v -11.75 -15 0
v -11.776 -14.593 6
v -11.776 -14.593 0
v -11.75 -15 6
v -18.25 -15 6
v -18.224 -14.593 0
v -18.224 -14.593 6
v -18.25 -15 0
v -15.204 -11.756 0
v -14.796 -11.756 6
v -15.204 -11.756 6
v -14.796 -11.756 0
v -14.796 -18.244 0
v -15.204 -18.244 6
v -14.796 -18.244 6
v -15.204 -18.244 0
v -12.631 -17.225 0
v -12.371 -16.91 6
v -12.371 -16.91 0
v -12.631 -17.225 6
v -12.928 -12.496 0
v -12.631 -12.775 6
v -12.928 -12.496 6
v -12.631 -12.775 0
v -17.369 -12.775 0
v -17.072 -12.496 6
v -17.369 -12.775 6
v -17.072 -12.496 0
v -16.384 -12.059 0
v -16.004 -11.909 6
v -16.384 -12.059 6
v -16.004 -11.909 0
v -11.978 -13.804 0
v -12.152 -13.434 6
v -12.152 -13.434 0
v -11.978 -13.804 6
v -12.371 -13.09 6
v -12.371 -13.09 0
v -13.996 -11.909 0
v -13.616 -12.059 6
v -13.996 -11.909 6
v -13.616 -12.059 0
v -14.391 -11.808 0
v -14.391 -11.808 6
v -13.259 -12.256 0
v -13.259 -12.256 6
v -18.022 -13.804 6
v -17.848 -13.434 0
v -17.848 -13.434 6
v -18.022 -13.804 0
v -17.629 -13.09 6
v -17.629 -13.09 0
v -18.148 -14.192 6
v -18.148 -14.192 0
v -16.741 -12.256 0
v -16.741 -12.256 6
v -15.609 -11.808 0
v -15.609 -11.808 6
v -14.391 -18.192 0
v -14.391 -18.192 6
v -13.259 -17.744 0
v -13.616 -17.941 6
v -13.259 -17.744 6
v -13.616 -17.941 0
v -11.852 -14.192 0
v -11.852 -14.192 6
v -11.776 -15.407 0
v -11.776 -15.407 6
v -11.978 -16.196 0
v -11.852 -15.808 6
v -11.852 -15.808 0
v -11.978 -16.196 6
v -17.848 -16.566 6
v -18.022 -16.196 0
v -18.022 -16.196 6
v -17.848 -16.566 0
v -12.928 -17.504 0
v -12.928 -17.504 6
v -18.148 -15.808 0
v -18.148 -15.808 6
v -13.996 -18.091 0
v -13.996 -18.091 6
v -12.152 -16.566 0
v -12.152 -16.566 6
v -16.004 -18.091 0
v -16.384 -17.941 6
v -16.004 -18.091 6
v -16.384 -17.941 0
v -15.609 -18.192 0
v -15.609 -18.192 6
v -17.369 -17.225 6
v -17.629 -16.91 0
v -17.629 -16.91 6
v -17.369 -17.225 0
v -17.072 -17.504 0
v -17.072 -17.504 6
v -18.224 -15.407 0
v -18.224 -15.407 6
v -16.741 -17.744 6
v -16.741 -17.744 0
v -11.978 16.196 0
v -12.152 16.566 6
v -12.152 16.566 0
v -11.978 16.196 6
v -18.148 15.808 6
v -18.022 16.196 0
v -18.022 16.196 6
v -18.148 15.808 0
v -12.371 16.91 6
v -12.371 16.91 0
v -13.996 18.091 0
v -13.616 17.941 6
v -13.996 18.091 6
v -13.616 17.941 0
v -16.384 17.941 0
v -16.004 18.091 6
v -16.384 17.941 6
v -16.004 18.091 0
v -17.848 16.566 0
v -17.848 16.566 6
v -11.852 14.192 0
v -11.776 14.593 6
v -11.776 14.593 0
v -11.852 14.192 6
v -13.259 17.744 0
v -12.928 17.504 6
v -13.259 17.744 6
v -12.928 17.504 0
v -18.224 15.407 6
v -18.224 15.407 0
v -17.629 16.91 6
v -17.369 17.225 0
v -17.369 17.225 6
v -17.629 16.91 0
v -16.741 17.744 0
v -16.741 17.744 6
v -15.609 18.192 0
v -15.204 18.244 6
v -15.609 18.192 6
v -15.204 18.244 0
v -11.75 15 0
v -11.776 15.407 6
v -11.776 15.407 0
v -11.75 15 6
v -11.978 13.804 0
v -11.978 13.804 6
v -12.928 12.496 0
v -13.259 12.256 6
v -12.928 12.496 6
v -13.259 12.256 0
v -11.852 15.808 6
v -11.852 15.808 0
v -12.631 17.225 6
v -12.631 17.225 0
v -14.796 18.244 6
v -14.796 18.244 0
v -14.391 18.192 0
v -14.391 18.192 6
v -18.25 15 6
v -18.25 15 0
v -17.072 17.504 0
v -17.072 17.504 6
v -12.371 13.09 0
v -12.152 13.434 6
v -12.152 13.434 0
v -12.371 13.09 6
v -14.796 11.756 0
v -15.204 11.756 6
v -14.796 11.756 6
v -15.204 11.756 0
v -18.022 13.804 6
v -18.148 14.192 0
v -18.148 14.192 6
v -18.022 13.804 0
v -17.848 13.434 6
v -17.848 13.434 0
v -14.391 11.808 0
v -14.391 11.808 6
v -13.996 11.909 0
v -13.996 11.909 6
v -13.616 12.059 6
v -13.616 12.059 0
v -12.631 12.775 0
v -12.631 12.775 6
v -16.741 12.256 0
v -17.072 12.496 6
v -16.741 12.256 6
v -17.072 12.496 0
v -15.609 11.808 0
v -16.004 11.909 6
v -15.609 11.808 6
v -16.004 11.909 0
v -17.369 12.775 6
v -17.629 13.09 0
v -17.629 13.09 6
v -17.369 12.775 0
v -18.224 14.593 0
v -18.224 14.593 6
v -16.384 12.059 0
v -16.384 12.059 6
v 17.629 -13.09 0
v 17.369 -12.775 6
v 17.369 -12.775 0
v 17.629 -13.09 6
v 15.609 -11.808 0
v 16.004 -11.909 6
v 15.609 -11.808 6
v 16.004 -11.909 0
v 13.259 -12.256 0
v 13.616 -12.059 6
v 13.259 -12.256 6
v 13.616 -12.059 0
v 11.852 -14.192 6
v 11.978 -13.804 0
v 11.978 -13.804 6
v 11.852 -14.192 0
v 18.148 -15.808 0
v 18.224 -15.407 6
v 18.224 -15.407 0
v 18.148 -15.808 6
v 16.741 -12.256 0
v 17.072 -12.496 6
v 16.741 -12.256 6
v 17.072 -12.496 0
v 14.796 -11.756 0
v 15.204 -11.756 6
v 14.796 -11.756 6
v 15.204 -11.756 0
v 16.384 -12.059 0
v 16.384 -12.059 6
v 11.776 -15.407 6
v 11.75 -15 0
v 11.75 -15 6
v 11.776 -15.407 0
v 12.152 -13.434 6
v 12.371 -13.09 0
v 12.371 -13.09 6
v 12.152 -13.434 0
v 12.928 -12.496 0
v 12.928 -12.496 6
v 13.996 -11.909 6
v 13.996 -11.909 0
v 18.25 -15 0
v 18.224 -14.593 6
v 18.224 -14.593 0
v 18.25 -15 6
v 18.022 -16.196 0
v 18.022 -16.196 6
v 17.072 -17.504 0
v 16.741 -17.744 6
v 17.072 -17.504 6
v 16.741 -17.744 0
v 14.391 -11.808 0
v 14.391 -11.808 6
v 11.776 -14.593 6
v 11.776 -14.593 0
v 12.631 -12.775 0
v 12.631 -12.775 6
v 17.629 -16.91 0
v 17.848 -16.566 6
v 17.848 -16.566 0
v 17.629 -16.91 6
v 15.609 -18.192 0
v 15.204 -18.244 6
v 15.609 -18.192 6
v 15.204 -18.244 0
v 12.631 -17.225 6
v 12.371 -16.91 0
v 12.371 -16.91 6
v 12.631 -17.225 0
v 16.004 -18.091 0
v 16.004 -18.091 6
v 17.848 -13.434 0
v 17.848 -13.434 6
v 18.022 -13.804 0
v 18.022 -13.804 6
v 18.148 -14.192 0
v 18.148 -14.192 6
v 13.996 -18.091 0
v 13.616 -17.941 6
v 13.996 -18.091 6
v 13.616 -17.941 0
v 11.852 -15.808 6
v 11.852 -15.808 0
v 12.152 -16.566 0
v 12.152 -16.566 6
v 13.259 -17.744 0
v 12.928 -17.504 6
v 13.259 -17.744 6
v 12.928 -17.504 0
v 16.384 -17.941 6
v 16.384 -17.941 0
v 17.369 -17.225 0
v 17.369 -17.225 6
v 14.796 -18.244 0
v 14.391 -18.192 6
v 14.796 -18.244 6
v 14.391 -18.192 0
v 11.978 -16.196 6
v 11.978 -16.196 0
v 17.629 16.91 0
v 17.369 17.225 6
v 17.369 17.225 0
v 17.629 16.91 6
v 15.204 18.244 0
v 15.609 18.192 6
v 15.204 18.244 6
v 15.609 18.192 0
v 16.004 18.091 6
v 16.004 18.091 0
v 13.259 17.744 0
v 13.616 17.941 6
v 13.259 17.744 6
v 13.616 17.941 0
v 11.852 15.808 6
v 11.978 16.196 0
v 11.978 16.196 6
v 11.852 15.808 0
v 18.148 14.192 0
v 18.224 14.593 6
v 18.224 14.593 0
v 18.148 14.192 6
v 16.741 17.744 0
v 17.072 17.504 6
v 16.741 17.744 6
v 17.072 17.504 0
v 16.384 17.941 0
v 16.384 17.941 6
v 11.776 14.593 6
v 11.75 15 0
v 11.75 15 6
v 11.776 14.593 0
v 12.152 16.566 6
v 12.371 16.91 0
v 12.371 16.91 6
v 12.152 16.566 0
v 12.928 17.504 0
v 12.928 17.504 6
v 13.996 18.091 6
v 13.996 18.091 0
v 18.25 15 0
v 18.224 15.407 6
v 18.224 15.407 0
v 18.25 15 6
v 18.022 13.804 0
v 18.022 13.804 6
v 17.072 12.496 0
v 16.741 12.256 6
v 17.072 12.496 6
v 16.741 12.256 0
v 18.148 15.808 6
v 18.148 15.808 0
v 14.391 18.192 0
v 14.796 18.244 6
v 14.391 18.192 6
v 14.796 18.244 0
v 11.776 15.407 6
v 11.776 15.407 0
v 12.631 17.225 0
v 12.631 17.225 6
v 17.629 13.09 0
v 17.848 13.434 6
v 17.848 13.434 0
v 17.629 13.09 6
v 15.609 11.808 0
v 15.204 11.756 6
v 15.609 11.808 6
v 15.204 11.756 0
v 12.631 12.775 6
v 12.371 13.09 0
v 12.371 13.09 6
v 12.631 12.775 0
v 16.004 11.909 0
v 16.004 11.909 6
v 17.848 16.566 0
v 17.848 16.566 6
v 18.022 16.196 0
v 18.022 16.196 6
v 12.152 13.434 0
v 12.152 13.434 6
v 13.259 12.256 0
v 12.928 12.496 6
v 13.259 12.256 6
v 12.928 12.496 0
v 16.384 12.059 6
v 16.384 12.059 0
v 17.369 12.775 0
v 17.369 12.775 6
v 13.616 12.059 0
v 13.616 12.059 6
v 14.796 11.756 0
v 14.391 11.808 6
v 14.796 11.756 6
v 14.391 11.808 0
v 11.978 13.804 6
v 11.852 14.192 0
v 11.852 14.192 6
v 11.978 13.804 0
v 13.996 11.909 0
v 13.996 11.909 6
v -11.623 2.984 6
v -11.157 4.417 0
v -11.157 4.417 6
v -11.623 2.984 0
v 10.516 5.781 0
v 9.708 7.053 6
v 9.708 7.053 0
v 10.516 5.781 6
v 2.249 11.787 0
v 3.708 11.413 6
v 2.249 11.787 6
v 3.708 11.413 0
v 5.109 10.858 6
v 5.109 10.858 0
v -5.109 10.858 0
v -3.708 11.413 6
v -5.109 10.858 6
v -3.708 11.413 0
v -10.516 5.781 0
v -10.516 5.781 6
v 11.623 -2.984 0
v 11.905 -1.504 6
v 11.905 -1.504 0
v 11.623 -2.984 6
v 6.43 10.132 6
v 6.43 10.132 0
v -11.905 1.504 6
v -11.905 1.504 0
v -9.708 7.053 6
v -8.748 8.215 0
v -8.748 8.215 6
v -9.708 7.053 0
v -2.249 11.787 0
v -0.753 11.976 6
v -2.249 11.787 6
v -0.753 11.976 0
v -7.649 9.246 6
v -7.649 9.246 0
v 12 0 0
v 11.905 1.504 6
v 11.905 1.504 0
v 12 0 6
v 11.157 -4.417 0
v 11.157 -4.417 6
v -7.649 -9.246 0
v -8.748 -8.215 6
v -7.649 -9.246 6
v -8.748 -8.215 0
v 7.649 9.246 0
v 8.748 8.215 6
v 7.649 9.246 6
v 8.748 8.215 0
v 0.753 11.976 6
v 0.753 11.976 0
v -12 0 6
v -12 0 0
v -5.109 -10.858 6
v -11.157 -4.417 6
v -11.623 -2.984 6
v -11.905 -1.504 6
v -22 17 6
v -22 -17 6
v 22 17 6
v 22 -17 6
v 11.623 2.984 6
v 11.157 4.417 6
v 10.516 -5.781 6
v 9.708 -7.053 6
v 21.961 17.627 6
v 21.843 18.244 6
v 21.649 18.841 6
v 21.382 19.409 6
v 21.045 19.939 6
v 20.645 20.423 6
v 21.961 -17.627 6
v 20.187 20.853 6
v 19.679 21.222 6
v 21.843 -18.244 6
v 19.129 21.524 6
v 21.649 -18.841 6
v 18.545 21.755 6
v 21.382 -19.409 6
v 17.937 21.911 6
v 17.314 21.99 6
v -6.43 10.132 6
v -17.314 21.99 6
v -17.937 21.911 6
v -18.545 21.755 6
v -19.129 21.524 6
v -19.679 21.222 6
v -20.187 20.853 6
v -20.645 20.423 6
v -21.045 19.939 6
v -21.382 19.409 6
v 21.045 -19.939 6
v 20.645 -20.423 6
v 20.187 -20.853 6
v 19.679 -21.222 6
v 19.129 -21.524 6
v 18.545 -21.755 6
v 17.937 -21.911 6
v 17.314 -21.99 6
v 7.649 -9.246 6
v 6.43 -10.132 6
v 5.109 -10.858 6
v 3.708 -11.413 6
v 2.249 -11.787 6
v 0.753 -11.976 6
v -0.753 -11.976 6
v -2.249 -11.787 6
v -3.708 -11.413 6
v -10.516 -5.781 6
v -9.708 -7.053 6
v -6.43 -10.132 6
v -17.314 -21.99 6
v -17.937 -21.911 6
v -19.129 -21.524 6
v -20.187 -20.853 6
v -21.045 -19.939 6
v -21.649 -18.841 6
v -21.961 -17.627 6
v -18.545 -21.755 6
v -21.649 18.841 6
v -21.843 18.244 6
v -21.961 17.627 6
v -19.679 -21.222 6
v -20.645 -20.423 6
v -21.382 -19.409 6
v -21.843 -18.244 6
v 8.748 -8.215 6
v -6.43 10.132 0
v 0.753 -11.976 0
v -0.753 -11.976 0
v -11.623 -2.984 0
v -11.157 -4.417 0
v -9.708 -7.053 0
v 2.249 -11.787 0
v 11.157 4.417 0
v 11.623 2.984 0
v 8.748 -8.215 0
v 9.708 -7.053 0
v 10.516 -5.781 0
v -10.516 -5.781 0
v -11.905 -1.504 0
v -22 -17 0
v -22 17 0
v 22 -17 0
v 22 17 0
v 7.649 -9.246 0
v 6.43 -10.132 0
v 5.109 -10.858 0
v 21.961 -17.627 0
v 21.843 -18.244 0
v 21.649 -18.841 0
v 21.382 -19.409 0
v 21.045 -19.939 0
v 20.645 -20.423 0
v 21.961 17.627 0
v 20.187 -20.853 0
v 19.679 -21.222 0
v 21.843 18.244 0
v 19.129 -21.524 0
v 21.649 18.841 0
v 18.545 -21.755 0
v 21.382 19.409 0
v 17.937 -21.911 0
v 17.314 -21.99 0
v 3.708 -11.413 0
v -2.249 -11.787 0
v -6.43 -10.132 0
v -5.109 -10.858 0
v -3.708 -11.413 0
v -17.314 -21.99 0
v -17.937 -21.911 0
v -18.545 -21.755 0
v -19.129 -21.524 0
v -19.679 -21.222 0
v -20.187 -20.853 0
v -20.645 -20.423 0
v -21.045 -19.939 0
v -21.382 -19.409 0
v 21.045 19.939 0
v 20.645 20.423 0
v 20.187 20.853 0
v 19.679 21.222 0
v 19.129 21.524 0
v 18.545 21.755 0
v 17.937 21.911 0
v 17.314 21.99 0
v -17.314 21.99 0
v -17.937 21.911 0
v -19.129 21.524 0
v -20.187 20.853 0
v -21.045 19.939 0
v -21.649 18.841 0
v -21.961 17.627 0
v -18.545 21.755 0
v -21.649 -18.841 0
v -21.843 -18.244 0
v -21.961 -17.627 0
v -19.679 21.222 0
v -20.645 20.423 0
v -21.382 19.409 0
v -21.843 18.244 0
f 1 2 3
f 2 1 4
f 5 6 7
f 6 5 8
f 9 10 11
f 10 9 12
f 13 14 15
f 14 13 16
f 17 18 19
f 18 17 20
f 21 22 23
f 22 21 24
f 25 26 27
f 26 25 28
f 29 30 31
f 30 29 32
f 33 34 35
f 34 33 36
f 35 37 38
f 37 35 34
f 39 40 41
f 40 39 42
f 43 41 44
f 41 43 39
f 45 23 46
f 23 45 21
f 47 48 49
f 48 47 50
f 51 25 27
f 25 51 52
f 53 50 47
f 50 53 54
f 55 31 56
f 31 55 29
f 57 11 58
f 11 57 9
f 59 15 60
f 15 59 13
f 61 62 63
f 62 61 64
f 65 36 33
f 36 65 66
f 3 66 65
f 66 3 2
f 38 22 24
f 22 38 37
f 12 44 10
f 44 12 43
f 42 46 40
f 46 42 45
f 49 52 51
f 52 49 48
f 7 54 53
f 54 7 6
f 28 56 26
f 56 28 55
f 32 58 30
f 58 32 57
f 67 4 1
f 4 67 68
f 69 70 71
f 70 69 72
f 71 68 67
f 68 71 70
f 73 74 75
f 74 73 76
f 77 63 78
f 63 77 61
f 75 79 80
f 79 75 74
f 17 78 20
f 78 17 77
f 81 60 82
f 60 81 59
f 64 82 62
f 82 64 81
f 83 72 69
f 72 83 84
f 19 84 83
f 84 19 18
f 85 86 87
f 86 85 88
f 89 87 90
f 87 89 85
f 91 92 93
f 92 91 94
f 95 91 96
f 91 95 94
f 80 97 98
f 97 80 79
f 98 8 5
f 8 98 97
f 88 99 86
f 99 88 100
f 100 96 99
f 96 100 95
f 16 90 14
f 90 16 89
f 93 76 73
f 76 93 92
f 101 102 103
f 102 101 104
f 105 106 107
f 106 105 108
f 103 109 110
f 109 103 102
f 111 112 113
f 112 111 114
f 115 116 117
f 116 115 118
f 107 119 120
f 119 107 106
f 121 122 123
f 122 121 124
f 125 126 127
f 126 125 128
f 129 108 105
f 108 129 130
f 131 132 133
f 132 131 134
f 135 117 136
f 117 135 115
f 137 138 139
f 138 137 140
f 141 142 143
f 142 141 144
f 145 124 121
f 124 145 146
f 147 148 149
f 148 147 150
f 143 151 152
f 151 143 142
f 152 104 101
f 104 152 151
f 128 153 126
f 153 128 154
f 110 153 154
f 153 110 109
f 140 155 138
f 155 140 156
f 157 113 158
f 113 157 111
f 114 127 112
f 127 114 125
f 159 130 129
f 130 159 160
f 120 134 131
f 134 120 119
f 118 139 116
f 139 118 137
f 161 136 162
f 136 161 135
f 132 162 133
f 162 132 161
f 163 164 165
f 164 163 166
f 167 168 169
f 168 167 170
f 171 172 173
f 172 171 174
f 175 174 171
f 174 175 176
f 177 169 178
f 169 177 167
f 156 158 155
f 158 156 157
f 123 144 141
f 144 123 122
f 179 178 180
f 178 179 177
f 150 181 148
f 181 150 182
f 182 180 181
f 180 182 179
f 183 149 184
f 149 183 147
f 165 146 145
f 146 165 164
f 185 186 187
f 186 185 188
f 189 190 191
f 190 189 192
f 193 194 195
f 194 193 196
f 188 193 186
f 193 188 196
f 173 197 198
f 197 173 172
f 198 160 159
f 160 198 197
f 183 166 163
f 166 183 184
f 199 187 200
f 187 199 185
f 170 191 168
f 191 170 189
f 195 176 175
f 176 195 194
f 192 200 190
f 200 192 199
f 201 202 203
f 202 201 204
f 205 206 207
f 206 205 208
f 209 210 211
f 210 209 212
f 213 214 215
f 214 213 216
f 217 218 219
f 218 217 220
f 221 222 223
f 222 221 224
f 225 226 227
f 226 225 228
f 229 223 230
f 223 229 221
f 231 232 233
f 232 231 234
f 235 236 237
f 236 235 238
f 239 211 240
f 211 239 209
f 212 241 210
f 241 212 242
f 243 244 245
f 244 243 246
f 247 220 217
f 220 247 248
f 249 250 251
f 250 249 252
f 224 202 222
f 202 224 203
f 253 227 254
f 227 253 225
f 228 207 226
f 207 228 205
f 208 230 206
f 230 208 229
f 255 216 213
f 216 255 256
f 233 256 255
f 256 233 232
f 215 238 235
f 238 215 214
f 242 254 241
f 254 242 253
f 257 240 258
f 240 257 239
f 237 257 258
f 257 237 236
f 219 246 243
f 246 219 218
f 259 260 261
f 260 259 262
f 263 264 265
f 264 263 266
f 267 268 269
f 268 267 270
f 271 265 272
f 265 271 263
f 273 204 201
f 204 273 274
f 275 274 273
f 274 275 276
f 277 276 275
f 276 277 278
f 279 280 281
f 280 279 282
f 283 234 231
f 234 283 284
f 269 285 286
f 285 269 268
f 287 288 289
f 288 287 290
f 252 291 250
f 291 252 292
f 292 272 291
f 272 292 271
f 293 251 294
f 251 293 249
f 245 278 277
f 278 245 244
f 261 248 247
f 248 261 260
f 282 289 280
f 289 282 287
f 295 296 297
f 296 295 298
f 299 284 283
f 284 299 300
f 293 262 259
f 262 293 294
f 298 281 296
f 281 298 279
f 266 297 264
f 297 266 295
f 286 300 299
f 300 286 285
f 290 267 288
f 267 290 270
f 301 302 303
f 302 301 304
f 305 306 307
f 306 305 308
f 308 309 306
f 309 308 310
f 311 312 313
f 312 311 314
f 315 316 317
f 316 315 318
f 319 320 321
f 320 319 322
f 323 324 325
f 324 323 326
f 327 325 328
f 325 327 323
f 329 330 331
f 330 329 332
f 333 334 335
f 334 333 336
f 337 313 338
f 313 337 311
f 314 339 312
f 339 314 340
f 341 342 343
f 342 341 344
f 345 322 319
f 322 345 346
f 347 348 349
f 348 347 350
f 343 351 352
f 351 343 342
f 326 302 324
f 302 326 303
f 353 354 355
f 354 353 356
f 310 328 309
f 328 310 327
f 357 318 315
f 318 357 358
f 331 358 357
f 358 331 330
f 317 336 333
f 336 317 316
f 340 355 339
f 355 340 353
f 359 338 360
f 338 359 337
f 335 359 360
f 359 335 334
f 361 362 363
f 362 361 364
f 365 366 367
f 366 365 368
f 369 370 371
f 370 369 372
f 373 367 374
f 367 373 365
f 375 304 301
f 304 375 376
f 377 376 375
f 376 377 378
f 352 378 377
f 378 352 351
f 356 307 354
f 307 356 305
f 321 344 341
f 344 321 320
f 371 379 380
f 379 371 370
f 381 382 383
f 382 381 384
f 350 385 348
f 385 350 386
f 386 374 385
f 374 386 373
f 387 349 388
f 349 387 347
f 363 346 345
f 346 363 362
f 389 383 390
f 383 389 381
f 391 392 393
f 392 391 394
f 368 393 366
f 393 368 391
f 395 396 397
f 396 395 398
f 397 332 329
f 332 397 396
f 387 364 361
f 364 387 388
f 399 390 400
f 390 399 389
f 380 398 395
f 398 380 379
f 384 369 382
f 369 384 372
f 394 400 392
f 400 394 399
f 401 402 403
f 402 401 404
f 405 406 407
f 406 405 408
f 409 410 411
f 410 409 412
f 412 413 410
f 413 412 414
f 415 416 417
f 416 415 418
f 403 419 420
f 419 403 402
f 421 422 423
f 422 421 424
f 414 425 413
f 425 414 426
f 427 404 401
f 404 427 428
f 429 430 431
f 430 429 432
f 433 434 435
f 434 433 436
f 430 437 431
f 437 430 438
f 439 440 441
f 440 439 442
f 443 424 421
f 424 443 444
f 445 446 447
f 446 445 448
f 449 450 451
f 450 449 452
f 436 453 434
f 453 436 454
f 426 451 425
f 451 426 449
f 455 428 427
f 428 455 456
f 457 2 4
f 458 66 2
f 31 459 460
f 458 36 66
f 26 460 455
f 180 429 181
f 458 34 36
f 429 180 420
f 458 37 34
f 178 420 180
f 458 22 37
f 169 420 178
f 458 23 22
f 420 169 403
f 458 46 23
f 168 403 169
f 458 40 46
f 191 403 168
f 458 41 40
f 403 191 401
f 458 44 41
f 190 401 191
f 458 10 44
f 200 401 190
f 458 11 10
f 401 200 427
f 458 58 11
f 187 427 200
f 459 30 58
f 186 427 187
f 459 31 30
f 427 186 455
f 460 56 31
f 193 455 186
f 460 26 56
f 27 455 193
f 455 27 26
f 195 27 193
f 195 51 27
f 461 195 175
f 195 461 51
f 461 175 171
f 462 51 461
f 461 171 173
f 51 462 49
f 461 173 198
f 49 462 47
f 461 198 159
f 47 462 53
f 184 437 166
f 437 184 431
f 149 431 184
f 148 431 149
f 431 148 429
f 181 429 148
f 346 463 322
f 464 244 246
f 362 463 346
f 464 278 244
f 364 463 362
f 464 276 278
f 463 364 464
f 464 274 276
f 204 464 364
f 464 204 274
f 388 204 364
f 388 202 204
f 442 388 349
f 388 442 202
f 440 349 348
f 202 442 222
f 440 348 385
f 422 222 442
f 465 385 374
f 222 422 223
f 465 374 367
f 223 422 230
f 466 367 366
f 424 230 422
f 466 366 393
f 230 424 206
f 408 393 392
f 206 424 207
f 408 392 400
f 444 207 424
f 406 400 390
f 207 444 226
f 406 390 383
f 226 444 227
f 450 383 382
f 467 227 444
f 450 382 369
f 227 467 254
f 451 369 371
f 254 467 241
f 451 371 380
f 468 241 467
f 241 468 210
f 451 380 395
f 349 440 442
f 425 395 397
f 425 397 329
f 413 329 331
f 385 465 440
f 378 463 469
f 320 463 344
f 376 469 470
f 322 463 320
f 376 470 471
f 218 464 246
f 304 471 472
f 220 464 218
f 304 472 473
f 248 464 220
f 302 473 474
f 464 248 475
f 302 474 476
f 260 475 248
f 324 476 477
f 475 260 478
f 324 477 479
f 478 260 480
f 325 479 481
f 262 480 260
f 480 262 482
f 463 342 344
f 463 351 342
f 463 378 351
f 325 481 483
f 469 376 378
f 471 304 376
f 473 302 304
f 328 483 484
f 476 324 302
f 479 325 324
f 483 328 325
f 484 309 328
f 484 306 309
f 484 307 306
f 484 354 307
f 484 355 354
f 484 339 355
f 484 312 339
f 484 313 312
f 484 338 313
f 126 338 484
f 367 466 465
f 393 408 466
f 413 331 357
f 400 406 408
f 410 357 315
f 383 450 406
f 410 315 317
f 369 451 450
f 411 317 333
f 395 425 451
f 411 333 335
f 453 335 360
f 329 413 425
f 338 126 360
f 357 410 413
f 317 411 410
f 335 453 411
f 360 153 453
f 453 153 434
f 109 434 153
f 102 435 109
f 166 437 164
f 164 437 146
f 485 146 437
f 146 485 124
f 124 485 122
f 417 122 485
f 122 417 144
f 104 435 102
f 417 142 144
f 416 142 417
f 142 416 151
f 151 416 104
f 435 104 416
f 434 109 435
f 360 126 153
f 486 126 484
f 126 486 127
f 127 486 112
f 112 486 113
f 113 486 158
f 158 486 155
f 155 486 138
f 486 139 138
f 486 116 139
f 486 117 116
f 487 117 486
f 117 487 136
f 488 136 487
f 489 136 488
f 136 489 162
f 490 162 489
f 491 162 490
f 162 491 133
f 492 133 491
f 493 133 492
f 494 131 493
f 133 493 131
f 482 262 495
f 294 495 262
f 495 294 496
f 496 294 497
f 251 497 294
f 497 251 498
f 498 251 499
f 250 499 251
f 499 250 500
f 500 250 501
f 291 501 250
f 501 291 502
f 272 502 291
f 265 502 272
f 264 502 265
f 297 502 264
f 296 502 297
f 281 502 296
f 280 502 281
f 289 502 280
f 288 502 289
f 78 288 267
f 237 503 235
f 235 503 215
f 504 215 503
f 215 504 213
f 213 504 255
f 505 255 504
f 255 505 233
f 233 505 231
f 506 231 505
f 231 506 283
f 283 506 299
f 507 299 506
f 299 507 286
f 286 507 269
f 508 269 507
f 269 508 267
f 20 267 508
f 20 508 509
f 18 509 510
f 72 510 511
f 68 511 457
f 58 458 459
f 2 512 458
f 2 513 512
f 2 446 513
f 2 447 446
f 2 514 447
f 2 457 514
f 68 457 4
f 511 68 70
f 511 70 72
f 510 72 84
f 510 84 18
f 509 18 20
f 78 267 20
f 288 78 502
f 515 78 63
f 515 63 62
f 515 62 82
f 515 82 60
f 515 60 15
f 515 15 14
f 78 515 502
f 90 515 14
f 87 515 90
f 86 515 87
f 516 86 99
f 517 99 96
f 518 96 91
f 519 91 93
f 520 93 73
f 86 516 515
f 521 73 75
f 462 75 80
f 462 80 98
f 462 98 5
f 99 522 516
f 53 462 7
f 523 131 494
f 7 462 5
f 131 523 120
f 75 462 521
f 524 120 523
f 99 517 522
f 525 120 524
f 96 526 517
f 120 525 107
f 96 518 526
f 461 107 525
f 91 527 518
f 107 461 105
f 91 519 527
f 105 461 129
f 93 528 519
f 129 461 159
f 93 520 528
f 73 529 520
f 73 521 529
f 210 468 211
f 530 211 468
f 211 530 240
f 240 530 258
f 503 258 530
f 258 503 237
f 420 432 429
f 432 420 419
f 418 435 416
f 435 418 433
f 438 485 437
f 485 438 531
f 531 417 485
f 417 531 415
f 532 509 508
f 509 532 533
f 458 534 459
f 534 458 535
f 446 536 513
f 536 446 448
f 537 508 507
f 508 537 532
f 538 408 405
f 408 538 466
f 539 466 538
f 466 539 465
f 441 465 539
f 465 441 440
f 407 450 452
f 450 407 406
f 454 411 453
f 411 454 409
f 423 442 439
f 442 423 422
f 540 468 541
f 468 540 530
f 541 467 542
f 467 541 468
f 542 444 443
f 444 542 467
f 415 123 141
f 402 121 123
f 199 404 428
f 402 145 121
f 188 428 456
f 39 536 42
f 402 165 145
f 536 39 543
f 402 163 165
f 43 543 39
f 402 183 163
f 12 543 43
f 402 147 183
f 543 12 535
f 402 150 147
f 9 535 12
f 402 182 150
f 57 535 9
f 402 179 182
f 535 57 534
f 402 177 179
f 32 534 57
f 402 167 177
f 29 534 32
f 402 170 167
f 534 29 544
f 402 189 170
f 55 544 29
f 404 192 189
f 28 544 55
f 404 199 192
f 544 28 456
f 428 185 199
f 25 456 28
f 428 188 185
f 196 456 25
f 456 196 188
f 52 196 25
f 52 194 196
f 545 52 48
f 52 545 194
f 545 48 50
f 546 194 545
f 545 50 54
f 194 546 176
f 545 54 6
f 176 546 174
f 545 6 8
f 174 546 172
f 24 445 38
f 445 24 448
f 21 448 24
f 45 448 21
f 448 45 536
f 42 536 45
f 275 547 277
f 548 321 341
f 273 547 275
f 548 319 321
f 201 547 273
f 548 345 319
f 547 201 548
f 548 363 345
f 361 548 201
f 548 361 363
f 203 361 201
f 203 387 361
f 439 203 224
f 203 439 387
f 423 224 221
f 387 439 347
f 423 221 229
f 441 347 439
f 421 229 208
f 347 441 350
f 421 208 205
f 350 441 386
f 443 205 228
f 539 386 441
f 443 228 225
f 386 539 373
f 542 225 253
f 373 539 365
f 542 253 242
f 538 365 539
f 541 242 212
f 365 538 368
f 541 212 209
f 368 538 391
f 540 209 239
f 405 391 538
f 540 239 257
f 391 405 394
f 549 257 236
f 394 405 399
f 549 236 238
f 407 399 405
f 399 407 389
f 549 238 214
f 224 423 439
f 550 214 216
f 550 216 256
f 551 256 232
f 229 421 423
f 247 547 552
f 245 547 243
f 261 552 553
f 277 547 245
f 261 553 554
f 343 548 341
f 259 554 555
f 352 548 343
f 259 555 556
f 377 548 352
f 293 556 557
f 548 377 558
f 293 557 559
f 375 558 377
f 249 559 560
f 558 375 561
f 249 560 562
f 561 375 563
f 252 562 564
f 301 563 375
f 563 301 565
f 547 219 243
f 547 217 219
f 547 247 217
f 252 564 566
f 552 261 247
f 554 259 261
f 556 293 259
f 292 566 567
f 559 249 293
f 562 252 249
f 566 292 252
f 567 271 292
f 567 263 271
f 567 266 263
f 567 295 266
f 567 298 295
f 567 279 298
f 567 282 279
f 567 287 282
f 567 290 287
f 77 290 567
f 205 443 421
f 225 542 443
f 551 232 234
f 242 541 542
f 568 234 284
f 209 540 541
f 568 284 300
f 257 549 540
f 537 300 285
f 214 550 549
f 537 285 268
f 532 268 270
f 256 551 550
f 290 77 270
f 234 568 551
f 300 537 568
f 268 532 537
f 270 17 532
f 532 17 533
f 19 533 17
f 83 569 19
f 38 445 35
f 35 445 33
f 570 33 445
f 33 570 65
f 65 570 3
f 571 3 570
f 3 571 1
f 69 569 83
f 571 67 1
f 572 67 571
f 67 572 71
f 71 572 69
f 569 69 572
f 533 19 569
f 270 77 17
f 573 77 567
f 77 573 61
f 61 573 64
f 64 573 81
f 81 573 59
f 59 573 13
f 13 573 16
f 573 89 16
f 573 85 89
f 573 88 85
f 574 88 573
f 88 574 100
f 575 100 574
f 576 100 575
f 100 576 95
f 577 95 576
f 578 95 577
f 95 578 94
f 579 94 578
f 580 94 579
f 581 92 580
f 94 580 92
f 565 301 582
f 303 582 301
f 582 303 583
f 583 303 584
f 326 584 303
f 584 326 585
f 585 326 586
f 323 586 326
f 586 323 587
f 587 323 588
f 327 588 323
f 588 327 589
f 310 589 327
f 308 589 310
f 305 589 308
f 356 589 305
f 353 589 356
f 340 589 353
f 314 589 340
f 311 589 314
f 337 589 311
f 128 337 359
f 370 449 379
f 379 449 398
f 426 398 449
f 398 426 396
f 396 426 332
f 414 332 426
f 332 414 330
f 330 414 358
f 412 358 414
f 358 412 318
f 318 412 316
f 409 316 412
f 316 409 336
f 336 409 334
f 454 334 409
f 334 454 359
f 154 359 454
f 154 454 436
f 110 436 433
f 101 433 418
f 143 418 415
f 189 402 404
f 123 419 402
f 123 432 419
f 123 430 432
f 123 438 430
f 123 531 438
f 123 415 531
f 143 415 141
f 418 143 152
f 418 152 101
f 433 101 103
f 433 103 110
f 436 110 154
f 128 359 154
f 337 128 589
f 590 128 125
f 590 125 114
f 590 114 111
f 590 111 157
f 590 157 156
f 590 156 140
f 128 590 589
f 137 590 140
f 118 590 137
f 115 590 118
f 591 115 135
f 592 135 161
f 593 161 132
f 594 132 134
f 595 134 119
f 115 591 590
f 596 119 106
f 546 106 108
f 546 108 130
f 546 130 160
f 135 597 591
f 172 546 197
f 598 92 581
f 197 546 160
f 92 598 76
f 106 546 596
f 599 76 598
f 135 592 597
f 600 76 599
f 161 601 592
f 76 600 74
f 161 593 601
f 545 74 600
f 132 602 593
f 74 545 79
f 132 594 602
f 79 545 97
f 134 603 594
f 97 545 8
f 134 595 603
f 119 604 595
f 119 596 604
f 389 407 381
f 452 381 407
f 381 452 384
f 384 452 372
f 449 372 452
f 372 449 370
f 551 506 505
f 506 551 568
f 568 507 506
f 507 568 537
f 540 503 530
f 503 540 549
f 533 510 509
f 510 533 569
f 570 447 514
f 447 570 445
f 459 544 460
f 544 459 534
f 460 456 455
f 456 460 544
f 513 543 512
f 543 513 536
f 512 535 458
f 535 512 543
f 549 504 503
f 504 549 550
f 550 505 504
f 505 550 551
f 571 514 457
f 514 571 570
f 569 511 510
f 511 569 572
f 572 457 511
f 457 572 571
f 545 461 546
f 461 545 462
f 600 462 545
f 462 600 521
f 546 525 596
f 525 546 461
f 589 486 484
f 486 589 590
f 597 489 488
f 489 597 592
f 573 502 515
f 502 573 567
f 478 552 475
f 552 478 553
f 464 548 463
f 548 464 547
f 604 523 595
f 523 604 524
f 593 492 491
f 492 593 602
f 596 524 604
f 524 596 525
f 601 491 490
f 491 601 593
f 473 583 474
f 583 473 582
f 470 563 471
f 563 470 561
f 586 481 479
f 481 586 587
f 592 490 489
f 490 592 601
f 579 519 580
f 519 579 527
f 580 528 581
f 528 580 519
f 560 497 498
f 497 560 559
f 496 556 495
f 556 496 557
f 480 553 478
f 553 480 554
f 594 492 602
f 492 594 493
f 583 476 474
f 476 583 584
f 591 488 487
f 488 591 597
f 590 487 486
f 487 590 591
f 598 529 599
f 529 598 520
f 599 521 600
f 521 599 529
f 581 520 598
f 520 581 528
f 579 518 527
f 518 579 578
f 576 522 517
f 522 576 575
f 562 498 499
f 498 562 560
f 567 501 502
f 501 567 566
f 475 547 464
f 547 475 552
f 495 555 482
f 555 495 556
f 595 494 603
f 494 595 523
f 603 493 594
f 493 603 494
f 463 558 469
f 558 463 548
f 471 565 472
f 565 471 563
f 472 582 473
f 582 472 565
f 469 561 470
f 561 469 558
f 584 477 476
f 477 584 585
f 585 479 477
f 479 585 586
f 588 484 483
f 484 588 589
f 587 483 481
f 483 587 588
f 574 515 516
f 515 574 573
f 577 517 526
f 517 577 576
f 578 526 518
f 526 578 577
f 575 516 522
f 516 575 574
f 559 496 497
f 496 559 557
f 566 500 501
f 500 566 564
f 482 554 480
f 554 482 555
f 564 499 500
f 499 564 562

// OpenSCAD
$fn = 50;


difference() {
	union() {
		hull() {
			translate(v = [-17.0000000000, 17.0000000000, 0]) {
				cylinder(h = 6, r = 5);
			}
			translate(v = [17.0000000000, 17.0000000000, 0]) {
				cylinder(h = 6, r = 5);
			}
			translate(v = [-17.0000000000, -17.0000000000, 0]) {
				cylinder(h = 6, r = 5);
			}
			translate(v = [17.0000000000, -17.0000000000, 0]) {
				cylinder(h = 6, r = 5);
			}
		}
	}
	union() {
		#translate(v = [-15.0000000000, -15.0000000000, -100.0000000000]) {
			cylinder(h = 200, r = 3.2500000000);
		}
		#translate(v = [-15.0000000000, 15.0000000000, -100.0000000000]) {
			cylinder(h = 200, r = 3.2500000000);
		}
		#translate(v = [15.0000000000, -15.0000000000, -100.0000000000]) {
			cylinder(h = 200, r = 3.2500000000);
		}
		#translate(v = [15.0000000000, 15.0000000000, -100.0000000000]) {
			cylinder(h = 200, r = 3.2500000000);
		}
		#cylinder(h = 6, r = 12.0000000000);
	}
}
